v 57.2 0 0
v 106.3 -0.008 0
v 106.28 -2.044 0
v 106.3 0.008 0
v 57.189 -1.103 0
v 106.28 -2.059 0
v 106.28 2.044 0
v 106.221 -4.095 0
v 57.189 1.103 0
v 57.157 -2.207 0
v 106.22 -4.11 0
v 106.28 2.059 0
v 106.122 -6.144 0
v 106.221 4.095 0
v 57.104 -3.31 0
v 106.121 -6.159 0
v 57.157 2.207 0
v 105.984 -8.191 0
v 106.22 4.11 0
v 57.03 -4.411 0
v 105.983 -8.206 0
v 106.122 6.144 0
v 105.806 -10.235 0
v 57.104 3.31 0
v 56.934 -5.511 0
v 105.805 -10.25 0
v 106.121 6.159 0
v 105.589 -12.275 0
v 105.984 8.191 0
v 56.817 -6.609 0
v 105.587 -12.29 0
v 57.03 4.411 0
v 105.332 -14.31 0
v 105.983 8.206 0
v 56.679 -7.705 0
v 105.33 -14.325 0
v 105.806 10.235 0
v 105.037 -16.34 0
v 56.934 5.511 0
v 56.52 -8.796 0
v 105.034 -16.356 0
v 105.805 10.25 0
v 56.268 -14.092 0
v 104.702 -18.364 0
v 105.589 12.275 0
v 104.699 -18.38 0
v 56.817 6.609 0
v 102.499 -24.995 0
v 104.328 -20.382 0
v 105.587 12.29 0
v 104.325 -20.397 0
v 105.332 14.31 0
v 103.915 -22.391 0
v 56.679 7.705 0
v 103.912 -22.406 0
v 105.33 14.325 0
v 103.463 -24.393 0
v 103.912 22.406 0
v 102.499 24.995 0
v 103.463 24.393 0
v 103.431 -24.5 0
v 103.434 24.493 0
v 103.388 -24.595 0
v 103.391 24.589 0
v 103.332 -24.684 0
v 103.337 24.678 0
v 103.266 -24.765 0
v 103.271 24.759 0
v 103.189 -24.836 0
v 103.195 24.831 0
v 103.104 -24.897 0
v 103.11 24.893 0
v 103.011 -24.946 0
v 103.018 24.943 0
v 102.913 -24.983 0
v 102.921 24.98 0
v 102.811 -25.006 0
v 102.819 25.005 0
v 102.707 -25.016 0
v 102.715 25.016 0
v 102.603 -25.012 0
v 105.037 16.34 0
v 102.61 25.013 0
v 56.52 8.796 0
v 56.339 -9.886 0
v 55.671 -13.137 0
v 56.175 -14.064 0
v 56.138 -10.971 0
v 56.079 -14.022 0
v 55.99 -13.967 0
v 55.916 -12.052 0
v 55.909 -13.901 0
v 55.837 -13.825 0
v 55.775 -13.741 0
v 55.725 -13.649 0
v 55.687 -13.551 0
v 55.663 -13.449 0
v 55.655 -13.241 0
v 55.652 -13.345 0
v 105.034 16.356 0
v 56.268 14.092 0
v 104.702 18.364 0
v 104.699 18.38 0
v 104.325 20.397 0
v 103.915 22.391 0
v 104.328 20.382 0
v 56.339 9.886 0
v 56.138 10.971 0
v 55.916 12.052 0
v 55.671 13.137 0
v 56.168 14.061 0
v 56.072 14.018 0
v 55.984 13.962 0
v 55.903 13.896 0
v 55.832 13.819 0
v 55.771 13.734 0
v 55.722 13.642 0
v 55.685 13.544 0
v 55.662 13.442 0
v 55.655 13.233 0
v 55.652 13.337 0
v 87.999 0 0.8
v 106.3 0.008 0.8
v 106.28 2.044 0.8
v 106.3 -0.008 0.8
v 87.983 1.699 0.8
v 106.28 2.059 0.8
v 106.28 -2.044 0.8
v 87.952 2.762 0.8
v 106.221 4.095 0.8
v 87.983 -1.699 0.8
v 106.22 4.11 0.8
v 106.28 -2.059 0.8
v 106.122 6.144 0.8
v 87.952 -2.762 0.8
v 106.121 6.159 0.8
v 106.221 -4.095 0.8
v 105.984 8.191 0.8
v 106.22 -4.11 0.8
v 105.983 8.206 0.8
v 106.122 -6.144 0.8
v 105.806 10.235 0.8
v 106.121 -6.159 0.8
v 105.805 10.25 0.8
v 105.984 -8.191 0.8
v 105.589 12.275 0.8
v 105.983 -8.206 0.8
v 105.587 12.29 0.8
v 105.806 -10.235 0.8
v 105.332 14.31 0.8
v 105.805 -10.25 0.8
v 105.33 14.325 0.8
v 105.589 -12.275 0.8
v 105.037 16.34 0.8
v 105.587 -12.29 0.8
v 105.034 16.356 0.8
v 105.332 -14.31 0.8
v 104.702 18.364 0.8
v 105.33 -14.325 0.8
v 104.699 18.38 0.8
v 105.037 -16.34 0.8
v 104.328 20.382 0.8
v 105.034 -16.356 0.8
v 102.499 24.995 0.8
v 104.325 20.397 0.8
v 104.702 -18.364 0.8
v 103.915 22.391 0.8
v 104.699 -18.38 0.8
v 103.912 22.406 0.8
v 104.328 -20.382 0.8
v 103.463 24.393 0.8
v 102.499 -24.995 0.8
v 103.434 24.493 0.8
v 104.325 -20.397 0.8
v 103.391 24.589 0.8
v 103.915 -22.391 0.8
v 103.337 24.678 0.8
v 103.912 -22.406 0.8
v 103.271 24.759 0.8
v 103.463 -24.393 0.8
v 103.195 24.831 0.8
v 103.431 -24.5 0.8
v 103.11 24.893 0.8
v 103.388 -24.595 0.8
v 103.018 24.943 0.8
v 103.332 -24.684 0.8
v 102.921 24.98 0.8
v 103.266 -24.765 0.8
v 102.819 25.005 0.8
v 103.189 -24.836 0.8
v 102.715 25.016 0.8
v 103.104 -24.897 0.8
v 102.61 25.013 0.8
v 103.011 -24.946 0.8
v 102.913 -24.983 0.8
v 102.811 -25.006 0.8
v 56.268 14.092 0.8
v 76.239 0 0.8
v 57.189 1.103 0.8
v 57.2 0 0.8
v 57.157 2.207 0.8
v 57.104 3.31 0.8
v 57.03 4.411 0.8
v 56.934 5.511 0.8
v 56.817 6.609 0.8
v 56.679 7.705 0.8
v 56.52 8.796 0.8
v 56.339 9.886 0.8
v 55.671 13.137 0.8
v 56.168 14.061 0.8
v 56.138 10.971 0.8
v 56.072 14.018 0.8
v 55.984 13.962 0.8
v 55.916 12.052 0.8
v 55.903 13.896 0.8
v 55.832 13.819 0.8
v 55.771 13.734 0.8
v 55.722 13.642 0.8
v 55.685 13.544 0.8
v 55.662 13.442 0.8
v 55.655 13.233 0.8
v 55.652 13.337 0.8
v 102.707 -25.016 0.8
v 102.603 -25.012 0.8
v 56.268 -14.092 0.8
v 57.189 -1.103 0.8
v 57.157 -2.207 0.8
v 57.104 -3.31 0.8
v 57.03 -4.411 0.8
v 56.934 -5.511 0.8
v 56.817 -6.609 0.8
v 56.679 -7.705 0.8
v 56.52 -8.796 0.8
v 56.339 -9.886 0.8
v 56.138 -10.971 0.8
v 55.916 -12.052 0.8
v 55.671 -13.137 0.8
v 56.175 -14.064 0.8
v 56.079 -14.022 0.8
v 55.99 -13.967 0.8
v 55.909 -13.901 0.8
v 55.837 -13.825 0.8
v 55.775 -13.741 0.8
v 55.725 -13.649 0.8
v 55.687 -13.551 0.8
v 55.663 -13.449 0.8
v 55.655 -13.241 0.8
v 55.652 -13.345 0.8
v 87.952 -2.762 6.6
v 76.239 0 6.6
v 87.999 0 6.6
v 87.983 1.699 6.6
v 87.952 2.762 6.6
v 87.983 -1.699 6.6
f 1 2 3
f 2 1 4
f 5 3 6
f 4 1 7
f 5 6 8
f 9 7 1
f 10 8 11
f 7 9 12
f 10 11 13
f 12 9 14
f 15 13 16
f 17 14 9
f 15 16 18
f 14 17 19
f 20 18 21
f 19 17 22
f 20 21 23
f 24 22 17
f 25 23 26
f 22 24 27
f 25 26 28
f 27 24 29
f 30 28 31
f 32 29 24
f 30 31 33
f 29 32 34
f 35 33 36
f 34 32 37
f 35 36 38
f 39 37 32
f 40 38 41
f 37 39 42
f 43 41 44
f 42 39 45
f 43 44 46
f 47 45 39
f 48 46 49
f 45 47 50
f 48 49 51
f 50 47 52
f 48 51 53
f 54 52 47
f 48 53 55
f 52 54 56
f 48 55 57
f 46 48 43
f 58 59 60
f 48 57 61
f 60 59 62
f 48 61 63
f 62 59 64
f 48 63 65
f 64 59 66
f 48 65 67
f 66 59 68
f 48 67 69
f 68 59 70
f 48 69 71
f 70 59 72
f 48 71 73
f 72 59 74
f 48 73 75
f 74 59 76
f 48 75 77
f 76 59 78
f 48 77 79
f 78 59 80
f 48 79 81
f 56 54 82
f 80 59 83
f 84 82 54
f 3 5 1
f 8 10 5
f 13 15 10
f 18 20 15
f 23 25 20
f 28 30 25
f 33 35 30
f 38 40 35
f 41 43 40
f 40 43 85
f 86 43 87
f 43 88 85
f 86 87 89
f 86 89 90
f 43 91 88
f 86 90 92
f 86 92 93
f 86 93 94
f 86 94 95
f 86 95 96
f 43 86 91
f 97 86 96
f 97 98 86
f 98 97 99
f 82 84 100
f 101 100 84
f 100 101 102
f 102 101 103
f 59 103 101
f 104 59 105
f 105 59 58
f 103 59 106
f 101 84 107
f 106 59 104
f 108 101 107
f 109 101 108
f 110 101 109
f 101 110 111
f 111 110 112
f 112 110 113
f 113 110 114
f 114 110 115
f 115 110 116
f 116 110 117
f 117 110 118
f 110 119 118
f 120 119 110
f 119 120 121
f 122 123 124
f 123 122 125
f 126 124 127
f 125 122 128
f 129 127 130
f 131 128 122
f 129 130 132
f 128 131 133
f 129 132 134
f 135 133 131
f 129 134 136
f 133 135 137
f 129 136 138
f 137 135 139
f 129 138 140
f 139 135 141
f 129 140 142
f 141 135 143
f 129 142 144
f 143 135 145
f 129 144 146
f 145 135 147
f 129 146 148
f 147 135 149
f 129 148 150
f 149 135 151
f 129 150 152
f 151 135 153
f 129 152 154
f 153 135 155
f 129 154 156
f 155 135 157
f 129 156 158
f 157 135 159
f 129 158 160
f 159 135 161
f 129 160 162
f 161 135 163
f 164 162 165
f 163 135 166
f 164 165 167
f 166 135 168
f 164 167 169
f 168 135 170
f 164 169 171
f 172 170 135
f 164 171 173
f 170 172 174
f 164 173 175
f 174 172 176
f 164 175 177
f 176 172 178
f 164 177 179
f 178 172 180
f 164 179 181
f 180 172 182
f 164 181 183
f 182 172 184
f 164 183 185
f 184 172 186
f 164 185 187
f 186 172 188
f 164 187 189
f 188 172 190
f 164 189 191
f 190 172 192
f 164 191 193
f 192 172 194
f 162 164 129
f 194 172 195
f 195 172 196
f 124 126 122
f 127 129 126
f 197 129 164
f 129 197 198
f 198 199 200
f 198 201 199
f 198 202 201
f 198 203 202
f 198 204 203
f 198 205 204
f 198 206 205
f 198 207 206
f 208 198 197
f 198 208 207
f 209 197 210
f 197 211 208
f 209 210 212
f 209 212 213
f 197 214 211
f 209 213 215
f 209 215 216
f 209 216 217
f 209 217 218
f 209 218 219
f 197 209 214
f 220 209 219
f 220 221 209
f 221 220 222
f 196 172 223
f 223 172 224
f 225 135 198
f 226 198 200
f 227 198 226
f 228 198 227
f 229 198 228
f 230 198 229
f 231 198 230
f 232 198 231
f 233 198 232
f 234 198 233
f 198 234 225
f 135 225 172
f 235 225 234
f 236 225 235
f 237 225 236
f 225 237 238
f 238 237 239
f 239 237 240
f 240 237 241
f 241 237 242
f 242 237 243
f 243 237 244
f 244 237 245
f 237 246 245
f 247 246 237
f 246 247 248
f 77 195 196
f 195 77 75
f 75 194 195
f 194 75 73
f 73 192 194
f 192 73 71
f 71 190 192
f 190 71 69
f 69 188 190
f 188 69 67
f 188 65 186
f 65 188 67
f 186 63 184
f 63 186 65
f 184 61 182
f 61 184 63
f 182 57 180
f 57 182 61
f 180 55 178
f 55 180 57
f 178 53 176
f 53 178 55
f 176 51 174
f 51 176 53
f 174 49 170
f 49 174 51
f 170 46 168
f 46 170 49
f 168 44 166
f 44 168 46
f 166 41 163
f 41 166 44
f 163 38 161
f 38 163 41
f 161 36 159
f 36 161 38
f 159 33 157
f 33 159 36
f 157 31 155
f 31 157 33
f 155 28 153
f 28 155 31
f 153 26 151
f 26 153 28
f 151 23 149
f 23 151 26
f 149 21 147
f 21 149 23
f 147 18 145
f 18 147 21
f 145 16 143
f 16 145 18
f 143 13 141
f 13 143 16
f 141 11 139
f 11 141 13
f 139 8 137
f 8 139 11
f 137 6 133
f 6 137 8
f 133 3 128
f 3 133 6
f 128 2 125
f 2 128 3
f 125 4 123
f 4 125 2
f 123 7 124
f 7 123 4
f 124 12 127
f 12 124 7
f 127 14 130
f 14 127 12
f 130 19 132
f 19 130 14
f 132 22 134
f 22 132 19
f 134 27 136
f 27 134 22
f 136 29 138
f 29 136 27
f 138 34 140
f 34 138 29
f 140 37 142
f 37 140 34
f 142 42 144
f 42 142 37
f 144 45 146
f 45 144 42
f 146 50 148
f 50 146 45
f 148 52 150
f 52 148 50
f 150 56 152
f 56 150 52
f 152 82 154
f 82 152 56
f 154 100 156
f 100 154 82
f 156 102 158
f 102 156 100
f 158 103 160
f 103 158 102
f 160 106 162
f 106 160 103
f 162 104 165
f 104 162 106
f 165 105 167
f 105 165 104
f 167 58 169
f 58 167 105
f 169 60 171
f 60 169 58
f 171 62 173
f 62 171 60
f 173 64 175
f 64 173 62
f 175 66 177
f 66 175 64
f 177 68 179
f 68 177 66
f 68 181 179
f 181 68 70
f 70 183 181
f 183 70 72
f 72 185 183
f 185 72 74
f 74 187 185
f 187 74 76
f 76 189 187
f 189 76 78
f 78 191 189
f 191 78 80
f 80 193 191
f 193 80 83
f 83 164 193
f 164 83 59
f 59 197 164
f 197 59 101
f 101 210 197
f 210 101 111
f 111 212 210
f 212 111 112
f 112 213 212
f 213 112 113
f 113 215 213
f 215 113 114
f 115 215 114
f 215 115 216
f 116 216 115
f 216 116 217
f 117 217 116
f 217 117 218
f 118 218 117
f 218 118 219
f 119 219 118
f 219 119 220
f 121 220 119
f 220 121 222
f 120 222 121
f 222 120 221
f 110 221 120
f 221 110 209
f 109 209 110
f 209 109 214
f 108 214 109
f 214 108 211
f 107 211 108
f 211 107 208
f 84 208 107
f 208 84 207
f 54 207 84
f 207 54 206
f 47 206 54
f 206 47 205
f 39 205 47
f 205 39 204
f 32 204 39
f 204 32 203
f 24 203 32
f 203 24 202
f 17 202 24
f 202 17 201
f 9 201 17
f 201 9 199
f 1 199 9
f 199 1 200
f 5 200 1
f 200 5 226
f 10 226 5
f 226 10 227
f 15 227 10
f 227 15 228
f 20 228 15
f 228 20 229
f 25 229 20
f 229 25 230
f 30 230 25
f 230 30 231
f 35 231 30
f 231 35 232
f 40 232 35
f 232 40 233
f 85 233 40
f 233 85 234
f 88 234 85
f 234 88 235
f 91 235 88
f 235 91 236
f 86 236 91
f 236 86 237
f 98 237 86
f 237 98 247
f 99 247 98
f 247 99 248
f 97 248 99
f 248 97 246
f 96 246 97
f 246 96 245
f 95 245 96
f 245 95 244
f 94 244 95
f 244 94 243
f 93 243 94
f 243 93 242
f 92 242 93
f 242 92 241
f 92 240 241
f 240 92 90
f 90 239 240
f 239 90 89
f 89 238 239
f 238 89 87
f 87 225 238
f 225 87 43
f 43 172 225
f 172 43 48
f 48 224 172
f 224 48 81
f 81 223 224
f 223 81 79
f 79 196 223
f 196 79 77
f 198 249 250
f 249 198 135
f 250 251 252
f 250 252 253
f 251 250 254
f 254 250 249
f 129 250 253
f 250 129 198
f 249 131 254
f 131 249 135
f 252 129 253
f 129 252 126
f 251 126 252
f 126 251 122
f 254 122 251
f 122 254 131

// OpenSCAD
// Gen-CU — bobbin BASE (bottom flange + hub). Print x12, flange down. Wind 24 AWG x 277 t around
// the hub with the LID glued on (coil_lid.stl). Copper lives ONLY between the flanges (no proud winds).
include <parameters.scad>;
$fn = 48;
module sector_2d(r_in, r_out, ang) {
    polygon([
        for (a = [-ang/2 : ang/24 : ang/2]) [r_in*cos(a), r_in*sin(a)],
        for (a = [ang/2 : -ang/24 : -ang/2]) [r_out*cos(a), r_out*sin(a)]
    ]);
}
module footprint_2d() { offset(r=wall) sector_2d(coil_id_r, coil_od_r, span_deg); }
module hub_2d()       { offset(delta=-coil_core_inset) sector_2d(coil_id_r, coil_od_r, span_deg); }

union() {
    linear_extrude(flange_t) footprint_2d();
    translate([0, 0, flange_t - 0.01]) linear_extrude(former_web + 0.01) hub_2d();
}
